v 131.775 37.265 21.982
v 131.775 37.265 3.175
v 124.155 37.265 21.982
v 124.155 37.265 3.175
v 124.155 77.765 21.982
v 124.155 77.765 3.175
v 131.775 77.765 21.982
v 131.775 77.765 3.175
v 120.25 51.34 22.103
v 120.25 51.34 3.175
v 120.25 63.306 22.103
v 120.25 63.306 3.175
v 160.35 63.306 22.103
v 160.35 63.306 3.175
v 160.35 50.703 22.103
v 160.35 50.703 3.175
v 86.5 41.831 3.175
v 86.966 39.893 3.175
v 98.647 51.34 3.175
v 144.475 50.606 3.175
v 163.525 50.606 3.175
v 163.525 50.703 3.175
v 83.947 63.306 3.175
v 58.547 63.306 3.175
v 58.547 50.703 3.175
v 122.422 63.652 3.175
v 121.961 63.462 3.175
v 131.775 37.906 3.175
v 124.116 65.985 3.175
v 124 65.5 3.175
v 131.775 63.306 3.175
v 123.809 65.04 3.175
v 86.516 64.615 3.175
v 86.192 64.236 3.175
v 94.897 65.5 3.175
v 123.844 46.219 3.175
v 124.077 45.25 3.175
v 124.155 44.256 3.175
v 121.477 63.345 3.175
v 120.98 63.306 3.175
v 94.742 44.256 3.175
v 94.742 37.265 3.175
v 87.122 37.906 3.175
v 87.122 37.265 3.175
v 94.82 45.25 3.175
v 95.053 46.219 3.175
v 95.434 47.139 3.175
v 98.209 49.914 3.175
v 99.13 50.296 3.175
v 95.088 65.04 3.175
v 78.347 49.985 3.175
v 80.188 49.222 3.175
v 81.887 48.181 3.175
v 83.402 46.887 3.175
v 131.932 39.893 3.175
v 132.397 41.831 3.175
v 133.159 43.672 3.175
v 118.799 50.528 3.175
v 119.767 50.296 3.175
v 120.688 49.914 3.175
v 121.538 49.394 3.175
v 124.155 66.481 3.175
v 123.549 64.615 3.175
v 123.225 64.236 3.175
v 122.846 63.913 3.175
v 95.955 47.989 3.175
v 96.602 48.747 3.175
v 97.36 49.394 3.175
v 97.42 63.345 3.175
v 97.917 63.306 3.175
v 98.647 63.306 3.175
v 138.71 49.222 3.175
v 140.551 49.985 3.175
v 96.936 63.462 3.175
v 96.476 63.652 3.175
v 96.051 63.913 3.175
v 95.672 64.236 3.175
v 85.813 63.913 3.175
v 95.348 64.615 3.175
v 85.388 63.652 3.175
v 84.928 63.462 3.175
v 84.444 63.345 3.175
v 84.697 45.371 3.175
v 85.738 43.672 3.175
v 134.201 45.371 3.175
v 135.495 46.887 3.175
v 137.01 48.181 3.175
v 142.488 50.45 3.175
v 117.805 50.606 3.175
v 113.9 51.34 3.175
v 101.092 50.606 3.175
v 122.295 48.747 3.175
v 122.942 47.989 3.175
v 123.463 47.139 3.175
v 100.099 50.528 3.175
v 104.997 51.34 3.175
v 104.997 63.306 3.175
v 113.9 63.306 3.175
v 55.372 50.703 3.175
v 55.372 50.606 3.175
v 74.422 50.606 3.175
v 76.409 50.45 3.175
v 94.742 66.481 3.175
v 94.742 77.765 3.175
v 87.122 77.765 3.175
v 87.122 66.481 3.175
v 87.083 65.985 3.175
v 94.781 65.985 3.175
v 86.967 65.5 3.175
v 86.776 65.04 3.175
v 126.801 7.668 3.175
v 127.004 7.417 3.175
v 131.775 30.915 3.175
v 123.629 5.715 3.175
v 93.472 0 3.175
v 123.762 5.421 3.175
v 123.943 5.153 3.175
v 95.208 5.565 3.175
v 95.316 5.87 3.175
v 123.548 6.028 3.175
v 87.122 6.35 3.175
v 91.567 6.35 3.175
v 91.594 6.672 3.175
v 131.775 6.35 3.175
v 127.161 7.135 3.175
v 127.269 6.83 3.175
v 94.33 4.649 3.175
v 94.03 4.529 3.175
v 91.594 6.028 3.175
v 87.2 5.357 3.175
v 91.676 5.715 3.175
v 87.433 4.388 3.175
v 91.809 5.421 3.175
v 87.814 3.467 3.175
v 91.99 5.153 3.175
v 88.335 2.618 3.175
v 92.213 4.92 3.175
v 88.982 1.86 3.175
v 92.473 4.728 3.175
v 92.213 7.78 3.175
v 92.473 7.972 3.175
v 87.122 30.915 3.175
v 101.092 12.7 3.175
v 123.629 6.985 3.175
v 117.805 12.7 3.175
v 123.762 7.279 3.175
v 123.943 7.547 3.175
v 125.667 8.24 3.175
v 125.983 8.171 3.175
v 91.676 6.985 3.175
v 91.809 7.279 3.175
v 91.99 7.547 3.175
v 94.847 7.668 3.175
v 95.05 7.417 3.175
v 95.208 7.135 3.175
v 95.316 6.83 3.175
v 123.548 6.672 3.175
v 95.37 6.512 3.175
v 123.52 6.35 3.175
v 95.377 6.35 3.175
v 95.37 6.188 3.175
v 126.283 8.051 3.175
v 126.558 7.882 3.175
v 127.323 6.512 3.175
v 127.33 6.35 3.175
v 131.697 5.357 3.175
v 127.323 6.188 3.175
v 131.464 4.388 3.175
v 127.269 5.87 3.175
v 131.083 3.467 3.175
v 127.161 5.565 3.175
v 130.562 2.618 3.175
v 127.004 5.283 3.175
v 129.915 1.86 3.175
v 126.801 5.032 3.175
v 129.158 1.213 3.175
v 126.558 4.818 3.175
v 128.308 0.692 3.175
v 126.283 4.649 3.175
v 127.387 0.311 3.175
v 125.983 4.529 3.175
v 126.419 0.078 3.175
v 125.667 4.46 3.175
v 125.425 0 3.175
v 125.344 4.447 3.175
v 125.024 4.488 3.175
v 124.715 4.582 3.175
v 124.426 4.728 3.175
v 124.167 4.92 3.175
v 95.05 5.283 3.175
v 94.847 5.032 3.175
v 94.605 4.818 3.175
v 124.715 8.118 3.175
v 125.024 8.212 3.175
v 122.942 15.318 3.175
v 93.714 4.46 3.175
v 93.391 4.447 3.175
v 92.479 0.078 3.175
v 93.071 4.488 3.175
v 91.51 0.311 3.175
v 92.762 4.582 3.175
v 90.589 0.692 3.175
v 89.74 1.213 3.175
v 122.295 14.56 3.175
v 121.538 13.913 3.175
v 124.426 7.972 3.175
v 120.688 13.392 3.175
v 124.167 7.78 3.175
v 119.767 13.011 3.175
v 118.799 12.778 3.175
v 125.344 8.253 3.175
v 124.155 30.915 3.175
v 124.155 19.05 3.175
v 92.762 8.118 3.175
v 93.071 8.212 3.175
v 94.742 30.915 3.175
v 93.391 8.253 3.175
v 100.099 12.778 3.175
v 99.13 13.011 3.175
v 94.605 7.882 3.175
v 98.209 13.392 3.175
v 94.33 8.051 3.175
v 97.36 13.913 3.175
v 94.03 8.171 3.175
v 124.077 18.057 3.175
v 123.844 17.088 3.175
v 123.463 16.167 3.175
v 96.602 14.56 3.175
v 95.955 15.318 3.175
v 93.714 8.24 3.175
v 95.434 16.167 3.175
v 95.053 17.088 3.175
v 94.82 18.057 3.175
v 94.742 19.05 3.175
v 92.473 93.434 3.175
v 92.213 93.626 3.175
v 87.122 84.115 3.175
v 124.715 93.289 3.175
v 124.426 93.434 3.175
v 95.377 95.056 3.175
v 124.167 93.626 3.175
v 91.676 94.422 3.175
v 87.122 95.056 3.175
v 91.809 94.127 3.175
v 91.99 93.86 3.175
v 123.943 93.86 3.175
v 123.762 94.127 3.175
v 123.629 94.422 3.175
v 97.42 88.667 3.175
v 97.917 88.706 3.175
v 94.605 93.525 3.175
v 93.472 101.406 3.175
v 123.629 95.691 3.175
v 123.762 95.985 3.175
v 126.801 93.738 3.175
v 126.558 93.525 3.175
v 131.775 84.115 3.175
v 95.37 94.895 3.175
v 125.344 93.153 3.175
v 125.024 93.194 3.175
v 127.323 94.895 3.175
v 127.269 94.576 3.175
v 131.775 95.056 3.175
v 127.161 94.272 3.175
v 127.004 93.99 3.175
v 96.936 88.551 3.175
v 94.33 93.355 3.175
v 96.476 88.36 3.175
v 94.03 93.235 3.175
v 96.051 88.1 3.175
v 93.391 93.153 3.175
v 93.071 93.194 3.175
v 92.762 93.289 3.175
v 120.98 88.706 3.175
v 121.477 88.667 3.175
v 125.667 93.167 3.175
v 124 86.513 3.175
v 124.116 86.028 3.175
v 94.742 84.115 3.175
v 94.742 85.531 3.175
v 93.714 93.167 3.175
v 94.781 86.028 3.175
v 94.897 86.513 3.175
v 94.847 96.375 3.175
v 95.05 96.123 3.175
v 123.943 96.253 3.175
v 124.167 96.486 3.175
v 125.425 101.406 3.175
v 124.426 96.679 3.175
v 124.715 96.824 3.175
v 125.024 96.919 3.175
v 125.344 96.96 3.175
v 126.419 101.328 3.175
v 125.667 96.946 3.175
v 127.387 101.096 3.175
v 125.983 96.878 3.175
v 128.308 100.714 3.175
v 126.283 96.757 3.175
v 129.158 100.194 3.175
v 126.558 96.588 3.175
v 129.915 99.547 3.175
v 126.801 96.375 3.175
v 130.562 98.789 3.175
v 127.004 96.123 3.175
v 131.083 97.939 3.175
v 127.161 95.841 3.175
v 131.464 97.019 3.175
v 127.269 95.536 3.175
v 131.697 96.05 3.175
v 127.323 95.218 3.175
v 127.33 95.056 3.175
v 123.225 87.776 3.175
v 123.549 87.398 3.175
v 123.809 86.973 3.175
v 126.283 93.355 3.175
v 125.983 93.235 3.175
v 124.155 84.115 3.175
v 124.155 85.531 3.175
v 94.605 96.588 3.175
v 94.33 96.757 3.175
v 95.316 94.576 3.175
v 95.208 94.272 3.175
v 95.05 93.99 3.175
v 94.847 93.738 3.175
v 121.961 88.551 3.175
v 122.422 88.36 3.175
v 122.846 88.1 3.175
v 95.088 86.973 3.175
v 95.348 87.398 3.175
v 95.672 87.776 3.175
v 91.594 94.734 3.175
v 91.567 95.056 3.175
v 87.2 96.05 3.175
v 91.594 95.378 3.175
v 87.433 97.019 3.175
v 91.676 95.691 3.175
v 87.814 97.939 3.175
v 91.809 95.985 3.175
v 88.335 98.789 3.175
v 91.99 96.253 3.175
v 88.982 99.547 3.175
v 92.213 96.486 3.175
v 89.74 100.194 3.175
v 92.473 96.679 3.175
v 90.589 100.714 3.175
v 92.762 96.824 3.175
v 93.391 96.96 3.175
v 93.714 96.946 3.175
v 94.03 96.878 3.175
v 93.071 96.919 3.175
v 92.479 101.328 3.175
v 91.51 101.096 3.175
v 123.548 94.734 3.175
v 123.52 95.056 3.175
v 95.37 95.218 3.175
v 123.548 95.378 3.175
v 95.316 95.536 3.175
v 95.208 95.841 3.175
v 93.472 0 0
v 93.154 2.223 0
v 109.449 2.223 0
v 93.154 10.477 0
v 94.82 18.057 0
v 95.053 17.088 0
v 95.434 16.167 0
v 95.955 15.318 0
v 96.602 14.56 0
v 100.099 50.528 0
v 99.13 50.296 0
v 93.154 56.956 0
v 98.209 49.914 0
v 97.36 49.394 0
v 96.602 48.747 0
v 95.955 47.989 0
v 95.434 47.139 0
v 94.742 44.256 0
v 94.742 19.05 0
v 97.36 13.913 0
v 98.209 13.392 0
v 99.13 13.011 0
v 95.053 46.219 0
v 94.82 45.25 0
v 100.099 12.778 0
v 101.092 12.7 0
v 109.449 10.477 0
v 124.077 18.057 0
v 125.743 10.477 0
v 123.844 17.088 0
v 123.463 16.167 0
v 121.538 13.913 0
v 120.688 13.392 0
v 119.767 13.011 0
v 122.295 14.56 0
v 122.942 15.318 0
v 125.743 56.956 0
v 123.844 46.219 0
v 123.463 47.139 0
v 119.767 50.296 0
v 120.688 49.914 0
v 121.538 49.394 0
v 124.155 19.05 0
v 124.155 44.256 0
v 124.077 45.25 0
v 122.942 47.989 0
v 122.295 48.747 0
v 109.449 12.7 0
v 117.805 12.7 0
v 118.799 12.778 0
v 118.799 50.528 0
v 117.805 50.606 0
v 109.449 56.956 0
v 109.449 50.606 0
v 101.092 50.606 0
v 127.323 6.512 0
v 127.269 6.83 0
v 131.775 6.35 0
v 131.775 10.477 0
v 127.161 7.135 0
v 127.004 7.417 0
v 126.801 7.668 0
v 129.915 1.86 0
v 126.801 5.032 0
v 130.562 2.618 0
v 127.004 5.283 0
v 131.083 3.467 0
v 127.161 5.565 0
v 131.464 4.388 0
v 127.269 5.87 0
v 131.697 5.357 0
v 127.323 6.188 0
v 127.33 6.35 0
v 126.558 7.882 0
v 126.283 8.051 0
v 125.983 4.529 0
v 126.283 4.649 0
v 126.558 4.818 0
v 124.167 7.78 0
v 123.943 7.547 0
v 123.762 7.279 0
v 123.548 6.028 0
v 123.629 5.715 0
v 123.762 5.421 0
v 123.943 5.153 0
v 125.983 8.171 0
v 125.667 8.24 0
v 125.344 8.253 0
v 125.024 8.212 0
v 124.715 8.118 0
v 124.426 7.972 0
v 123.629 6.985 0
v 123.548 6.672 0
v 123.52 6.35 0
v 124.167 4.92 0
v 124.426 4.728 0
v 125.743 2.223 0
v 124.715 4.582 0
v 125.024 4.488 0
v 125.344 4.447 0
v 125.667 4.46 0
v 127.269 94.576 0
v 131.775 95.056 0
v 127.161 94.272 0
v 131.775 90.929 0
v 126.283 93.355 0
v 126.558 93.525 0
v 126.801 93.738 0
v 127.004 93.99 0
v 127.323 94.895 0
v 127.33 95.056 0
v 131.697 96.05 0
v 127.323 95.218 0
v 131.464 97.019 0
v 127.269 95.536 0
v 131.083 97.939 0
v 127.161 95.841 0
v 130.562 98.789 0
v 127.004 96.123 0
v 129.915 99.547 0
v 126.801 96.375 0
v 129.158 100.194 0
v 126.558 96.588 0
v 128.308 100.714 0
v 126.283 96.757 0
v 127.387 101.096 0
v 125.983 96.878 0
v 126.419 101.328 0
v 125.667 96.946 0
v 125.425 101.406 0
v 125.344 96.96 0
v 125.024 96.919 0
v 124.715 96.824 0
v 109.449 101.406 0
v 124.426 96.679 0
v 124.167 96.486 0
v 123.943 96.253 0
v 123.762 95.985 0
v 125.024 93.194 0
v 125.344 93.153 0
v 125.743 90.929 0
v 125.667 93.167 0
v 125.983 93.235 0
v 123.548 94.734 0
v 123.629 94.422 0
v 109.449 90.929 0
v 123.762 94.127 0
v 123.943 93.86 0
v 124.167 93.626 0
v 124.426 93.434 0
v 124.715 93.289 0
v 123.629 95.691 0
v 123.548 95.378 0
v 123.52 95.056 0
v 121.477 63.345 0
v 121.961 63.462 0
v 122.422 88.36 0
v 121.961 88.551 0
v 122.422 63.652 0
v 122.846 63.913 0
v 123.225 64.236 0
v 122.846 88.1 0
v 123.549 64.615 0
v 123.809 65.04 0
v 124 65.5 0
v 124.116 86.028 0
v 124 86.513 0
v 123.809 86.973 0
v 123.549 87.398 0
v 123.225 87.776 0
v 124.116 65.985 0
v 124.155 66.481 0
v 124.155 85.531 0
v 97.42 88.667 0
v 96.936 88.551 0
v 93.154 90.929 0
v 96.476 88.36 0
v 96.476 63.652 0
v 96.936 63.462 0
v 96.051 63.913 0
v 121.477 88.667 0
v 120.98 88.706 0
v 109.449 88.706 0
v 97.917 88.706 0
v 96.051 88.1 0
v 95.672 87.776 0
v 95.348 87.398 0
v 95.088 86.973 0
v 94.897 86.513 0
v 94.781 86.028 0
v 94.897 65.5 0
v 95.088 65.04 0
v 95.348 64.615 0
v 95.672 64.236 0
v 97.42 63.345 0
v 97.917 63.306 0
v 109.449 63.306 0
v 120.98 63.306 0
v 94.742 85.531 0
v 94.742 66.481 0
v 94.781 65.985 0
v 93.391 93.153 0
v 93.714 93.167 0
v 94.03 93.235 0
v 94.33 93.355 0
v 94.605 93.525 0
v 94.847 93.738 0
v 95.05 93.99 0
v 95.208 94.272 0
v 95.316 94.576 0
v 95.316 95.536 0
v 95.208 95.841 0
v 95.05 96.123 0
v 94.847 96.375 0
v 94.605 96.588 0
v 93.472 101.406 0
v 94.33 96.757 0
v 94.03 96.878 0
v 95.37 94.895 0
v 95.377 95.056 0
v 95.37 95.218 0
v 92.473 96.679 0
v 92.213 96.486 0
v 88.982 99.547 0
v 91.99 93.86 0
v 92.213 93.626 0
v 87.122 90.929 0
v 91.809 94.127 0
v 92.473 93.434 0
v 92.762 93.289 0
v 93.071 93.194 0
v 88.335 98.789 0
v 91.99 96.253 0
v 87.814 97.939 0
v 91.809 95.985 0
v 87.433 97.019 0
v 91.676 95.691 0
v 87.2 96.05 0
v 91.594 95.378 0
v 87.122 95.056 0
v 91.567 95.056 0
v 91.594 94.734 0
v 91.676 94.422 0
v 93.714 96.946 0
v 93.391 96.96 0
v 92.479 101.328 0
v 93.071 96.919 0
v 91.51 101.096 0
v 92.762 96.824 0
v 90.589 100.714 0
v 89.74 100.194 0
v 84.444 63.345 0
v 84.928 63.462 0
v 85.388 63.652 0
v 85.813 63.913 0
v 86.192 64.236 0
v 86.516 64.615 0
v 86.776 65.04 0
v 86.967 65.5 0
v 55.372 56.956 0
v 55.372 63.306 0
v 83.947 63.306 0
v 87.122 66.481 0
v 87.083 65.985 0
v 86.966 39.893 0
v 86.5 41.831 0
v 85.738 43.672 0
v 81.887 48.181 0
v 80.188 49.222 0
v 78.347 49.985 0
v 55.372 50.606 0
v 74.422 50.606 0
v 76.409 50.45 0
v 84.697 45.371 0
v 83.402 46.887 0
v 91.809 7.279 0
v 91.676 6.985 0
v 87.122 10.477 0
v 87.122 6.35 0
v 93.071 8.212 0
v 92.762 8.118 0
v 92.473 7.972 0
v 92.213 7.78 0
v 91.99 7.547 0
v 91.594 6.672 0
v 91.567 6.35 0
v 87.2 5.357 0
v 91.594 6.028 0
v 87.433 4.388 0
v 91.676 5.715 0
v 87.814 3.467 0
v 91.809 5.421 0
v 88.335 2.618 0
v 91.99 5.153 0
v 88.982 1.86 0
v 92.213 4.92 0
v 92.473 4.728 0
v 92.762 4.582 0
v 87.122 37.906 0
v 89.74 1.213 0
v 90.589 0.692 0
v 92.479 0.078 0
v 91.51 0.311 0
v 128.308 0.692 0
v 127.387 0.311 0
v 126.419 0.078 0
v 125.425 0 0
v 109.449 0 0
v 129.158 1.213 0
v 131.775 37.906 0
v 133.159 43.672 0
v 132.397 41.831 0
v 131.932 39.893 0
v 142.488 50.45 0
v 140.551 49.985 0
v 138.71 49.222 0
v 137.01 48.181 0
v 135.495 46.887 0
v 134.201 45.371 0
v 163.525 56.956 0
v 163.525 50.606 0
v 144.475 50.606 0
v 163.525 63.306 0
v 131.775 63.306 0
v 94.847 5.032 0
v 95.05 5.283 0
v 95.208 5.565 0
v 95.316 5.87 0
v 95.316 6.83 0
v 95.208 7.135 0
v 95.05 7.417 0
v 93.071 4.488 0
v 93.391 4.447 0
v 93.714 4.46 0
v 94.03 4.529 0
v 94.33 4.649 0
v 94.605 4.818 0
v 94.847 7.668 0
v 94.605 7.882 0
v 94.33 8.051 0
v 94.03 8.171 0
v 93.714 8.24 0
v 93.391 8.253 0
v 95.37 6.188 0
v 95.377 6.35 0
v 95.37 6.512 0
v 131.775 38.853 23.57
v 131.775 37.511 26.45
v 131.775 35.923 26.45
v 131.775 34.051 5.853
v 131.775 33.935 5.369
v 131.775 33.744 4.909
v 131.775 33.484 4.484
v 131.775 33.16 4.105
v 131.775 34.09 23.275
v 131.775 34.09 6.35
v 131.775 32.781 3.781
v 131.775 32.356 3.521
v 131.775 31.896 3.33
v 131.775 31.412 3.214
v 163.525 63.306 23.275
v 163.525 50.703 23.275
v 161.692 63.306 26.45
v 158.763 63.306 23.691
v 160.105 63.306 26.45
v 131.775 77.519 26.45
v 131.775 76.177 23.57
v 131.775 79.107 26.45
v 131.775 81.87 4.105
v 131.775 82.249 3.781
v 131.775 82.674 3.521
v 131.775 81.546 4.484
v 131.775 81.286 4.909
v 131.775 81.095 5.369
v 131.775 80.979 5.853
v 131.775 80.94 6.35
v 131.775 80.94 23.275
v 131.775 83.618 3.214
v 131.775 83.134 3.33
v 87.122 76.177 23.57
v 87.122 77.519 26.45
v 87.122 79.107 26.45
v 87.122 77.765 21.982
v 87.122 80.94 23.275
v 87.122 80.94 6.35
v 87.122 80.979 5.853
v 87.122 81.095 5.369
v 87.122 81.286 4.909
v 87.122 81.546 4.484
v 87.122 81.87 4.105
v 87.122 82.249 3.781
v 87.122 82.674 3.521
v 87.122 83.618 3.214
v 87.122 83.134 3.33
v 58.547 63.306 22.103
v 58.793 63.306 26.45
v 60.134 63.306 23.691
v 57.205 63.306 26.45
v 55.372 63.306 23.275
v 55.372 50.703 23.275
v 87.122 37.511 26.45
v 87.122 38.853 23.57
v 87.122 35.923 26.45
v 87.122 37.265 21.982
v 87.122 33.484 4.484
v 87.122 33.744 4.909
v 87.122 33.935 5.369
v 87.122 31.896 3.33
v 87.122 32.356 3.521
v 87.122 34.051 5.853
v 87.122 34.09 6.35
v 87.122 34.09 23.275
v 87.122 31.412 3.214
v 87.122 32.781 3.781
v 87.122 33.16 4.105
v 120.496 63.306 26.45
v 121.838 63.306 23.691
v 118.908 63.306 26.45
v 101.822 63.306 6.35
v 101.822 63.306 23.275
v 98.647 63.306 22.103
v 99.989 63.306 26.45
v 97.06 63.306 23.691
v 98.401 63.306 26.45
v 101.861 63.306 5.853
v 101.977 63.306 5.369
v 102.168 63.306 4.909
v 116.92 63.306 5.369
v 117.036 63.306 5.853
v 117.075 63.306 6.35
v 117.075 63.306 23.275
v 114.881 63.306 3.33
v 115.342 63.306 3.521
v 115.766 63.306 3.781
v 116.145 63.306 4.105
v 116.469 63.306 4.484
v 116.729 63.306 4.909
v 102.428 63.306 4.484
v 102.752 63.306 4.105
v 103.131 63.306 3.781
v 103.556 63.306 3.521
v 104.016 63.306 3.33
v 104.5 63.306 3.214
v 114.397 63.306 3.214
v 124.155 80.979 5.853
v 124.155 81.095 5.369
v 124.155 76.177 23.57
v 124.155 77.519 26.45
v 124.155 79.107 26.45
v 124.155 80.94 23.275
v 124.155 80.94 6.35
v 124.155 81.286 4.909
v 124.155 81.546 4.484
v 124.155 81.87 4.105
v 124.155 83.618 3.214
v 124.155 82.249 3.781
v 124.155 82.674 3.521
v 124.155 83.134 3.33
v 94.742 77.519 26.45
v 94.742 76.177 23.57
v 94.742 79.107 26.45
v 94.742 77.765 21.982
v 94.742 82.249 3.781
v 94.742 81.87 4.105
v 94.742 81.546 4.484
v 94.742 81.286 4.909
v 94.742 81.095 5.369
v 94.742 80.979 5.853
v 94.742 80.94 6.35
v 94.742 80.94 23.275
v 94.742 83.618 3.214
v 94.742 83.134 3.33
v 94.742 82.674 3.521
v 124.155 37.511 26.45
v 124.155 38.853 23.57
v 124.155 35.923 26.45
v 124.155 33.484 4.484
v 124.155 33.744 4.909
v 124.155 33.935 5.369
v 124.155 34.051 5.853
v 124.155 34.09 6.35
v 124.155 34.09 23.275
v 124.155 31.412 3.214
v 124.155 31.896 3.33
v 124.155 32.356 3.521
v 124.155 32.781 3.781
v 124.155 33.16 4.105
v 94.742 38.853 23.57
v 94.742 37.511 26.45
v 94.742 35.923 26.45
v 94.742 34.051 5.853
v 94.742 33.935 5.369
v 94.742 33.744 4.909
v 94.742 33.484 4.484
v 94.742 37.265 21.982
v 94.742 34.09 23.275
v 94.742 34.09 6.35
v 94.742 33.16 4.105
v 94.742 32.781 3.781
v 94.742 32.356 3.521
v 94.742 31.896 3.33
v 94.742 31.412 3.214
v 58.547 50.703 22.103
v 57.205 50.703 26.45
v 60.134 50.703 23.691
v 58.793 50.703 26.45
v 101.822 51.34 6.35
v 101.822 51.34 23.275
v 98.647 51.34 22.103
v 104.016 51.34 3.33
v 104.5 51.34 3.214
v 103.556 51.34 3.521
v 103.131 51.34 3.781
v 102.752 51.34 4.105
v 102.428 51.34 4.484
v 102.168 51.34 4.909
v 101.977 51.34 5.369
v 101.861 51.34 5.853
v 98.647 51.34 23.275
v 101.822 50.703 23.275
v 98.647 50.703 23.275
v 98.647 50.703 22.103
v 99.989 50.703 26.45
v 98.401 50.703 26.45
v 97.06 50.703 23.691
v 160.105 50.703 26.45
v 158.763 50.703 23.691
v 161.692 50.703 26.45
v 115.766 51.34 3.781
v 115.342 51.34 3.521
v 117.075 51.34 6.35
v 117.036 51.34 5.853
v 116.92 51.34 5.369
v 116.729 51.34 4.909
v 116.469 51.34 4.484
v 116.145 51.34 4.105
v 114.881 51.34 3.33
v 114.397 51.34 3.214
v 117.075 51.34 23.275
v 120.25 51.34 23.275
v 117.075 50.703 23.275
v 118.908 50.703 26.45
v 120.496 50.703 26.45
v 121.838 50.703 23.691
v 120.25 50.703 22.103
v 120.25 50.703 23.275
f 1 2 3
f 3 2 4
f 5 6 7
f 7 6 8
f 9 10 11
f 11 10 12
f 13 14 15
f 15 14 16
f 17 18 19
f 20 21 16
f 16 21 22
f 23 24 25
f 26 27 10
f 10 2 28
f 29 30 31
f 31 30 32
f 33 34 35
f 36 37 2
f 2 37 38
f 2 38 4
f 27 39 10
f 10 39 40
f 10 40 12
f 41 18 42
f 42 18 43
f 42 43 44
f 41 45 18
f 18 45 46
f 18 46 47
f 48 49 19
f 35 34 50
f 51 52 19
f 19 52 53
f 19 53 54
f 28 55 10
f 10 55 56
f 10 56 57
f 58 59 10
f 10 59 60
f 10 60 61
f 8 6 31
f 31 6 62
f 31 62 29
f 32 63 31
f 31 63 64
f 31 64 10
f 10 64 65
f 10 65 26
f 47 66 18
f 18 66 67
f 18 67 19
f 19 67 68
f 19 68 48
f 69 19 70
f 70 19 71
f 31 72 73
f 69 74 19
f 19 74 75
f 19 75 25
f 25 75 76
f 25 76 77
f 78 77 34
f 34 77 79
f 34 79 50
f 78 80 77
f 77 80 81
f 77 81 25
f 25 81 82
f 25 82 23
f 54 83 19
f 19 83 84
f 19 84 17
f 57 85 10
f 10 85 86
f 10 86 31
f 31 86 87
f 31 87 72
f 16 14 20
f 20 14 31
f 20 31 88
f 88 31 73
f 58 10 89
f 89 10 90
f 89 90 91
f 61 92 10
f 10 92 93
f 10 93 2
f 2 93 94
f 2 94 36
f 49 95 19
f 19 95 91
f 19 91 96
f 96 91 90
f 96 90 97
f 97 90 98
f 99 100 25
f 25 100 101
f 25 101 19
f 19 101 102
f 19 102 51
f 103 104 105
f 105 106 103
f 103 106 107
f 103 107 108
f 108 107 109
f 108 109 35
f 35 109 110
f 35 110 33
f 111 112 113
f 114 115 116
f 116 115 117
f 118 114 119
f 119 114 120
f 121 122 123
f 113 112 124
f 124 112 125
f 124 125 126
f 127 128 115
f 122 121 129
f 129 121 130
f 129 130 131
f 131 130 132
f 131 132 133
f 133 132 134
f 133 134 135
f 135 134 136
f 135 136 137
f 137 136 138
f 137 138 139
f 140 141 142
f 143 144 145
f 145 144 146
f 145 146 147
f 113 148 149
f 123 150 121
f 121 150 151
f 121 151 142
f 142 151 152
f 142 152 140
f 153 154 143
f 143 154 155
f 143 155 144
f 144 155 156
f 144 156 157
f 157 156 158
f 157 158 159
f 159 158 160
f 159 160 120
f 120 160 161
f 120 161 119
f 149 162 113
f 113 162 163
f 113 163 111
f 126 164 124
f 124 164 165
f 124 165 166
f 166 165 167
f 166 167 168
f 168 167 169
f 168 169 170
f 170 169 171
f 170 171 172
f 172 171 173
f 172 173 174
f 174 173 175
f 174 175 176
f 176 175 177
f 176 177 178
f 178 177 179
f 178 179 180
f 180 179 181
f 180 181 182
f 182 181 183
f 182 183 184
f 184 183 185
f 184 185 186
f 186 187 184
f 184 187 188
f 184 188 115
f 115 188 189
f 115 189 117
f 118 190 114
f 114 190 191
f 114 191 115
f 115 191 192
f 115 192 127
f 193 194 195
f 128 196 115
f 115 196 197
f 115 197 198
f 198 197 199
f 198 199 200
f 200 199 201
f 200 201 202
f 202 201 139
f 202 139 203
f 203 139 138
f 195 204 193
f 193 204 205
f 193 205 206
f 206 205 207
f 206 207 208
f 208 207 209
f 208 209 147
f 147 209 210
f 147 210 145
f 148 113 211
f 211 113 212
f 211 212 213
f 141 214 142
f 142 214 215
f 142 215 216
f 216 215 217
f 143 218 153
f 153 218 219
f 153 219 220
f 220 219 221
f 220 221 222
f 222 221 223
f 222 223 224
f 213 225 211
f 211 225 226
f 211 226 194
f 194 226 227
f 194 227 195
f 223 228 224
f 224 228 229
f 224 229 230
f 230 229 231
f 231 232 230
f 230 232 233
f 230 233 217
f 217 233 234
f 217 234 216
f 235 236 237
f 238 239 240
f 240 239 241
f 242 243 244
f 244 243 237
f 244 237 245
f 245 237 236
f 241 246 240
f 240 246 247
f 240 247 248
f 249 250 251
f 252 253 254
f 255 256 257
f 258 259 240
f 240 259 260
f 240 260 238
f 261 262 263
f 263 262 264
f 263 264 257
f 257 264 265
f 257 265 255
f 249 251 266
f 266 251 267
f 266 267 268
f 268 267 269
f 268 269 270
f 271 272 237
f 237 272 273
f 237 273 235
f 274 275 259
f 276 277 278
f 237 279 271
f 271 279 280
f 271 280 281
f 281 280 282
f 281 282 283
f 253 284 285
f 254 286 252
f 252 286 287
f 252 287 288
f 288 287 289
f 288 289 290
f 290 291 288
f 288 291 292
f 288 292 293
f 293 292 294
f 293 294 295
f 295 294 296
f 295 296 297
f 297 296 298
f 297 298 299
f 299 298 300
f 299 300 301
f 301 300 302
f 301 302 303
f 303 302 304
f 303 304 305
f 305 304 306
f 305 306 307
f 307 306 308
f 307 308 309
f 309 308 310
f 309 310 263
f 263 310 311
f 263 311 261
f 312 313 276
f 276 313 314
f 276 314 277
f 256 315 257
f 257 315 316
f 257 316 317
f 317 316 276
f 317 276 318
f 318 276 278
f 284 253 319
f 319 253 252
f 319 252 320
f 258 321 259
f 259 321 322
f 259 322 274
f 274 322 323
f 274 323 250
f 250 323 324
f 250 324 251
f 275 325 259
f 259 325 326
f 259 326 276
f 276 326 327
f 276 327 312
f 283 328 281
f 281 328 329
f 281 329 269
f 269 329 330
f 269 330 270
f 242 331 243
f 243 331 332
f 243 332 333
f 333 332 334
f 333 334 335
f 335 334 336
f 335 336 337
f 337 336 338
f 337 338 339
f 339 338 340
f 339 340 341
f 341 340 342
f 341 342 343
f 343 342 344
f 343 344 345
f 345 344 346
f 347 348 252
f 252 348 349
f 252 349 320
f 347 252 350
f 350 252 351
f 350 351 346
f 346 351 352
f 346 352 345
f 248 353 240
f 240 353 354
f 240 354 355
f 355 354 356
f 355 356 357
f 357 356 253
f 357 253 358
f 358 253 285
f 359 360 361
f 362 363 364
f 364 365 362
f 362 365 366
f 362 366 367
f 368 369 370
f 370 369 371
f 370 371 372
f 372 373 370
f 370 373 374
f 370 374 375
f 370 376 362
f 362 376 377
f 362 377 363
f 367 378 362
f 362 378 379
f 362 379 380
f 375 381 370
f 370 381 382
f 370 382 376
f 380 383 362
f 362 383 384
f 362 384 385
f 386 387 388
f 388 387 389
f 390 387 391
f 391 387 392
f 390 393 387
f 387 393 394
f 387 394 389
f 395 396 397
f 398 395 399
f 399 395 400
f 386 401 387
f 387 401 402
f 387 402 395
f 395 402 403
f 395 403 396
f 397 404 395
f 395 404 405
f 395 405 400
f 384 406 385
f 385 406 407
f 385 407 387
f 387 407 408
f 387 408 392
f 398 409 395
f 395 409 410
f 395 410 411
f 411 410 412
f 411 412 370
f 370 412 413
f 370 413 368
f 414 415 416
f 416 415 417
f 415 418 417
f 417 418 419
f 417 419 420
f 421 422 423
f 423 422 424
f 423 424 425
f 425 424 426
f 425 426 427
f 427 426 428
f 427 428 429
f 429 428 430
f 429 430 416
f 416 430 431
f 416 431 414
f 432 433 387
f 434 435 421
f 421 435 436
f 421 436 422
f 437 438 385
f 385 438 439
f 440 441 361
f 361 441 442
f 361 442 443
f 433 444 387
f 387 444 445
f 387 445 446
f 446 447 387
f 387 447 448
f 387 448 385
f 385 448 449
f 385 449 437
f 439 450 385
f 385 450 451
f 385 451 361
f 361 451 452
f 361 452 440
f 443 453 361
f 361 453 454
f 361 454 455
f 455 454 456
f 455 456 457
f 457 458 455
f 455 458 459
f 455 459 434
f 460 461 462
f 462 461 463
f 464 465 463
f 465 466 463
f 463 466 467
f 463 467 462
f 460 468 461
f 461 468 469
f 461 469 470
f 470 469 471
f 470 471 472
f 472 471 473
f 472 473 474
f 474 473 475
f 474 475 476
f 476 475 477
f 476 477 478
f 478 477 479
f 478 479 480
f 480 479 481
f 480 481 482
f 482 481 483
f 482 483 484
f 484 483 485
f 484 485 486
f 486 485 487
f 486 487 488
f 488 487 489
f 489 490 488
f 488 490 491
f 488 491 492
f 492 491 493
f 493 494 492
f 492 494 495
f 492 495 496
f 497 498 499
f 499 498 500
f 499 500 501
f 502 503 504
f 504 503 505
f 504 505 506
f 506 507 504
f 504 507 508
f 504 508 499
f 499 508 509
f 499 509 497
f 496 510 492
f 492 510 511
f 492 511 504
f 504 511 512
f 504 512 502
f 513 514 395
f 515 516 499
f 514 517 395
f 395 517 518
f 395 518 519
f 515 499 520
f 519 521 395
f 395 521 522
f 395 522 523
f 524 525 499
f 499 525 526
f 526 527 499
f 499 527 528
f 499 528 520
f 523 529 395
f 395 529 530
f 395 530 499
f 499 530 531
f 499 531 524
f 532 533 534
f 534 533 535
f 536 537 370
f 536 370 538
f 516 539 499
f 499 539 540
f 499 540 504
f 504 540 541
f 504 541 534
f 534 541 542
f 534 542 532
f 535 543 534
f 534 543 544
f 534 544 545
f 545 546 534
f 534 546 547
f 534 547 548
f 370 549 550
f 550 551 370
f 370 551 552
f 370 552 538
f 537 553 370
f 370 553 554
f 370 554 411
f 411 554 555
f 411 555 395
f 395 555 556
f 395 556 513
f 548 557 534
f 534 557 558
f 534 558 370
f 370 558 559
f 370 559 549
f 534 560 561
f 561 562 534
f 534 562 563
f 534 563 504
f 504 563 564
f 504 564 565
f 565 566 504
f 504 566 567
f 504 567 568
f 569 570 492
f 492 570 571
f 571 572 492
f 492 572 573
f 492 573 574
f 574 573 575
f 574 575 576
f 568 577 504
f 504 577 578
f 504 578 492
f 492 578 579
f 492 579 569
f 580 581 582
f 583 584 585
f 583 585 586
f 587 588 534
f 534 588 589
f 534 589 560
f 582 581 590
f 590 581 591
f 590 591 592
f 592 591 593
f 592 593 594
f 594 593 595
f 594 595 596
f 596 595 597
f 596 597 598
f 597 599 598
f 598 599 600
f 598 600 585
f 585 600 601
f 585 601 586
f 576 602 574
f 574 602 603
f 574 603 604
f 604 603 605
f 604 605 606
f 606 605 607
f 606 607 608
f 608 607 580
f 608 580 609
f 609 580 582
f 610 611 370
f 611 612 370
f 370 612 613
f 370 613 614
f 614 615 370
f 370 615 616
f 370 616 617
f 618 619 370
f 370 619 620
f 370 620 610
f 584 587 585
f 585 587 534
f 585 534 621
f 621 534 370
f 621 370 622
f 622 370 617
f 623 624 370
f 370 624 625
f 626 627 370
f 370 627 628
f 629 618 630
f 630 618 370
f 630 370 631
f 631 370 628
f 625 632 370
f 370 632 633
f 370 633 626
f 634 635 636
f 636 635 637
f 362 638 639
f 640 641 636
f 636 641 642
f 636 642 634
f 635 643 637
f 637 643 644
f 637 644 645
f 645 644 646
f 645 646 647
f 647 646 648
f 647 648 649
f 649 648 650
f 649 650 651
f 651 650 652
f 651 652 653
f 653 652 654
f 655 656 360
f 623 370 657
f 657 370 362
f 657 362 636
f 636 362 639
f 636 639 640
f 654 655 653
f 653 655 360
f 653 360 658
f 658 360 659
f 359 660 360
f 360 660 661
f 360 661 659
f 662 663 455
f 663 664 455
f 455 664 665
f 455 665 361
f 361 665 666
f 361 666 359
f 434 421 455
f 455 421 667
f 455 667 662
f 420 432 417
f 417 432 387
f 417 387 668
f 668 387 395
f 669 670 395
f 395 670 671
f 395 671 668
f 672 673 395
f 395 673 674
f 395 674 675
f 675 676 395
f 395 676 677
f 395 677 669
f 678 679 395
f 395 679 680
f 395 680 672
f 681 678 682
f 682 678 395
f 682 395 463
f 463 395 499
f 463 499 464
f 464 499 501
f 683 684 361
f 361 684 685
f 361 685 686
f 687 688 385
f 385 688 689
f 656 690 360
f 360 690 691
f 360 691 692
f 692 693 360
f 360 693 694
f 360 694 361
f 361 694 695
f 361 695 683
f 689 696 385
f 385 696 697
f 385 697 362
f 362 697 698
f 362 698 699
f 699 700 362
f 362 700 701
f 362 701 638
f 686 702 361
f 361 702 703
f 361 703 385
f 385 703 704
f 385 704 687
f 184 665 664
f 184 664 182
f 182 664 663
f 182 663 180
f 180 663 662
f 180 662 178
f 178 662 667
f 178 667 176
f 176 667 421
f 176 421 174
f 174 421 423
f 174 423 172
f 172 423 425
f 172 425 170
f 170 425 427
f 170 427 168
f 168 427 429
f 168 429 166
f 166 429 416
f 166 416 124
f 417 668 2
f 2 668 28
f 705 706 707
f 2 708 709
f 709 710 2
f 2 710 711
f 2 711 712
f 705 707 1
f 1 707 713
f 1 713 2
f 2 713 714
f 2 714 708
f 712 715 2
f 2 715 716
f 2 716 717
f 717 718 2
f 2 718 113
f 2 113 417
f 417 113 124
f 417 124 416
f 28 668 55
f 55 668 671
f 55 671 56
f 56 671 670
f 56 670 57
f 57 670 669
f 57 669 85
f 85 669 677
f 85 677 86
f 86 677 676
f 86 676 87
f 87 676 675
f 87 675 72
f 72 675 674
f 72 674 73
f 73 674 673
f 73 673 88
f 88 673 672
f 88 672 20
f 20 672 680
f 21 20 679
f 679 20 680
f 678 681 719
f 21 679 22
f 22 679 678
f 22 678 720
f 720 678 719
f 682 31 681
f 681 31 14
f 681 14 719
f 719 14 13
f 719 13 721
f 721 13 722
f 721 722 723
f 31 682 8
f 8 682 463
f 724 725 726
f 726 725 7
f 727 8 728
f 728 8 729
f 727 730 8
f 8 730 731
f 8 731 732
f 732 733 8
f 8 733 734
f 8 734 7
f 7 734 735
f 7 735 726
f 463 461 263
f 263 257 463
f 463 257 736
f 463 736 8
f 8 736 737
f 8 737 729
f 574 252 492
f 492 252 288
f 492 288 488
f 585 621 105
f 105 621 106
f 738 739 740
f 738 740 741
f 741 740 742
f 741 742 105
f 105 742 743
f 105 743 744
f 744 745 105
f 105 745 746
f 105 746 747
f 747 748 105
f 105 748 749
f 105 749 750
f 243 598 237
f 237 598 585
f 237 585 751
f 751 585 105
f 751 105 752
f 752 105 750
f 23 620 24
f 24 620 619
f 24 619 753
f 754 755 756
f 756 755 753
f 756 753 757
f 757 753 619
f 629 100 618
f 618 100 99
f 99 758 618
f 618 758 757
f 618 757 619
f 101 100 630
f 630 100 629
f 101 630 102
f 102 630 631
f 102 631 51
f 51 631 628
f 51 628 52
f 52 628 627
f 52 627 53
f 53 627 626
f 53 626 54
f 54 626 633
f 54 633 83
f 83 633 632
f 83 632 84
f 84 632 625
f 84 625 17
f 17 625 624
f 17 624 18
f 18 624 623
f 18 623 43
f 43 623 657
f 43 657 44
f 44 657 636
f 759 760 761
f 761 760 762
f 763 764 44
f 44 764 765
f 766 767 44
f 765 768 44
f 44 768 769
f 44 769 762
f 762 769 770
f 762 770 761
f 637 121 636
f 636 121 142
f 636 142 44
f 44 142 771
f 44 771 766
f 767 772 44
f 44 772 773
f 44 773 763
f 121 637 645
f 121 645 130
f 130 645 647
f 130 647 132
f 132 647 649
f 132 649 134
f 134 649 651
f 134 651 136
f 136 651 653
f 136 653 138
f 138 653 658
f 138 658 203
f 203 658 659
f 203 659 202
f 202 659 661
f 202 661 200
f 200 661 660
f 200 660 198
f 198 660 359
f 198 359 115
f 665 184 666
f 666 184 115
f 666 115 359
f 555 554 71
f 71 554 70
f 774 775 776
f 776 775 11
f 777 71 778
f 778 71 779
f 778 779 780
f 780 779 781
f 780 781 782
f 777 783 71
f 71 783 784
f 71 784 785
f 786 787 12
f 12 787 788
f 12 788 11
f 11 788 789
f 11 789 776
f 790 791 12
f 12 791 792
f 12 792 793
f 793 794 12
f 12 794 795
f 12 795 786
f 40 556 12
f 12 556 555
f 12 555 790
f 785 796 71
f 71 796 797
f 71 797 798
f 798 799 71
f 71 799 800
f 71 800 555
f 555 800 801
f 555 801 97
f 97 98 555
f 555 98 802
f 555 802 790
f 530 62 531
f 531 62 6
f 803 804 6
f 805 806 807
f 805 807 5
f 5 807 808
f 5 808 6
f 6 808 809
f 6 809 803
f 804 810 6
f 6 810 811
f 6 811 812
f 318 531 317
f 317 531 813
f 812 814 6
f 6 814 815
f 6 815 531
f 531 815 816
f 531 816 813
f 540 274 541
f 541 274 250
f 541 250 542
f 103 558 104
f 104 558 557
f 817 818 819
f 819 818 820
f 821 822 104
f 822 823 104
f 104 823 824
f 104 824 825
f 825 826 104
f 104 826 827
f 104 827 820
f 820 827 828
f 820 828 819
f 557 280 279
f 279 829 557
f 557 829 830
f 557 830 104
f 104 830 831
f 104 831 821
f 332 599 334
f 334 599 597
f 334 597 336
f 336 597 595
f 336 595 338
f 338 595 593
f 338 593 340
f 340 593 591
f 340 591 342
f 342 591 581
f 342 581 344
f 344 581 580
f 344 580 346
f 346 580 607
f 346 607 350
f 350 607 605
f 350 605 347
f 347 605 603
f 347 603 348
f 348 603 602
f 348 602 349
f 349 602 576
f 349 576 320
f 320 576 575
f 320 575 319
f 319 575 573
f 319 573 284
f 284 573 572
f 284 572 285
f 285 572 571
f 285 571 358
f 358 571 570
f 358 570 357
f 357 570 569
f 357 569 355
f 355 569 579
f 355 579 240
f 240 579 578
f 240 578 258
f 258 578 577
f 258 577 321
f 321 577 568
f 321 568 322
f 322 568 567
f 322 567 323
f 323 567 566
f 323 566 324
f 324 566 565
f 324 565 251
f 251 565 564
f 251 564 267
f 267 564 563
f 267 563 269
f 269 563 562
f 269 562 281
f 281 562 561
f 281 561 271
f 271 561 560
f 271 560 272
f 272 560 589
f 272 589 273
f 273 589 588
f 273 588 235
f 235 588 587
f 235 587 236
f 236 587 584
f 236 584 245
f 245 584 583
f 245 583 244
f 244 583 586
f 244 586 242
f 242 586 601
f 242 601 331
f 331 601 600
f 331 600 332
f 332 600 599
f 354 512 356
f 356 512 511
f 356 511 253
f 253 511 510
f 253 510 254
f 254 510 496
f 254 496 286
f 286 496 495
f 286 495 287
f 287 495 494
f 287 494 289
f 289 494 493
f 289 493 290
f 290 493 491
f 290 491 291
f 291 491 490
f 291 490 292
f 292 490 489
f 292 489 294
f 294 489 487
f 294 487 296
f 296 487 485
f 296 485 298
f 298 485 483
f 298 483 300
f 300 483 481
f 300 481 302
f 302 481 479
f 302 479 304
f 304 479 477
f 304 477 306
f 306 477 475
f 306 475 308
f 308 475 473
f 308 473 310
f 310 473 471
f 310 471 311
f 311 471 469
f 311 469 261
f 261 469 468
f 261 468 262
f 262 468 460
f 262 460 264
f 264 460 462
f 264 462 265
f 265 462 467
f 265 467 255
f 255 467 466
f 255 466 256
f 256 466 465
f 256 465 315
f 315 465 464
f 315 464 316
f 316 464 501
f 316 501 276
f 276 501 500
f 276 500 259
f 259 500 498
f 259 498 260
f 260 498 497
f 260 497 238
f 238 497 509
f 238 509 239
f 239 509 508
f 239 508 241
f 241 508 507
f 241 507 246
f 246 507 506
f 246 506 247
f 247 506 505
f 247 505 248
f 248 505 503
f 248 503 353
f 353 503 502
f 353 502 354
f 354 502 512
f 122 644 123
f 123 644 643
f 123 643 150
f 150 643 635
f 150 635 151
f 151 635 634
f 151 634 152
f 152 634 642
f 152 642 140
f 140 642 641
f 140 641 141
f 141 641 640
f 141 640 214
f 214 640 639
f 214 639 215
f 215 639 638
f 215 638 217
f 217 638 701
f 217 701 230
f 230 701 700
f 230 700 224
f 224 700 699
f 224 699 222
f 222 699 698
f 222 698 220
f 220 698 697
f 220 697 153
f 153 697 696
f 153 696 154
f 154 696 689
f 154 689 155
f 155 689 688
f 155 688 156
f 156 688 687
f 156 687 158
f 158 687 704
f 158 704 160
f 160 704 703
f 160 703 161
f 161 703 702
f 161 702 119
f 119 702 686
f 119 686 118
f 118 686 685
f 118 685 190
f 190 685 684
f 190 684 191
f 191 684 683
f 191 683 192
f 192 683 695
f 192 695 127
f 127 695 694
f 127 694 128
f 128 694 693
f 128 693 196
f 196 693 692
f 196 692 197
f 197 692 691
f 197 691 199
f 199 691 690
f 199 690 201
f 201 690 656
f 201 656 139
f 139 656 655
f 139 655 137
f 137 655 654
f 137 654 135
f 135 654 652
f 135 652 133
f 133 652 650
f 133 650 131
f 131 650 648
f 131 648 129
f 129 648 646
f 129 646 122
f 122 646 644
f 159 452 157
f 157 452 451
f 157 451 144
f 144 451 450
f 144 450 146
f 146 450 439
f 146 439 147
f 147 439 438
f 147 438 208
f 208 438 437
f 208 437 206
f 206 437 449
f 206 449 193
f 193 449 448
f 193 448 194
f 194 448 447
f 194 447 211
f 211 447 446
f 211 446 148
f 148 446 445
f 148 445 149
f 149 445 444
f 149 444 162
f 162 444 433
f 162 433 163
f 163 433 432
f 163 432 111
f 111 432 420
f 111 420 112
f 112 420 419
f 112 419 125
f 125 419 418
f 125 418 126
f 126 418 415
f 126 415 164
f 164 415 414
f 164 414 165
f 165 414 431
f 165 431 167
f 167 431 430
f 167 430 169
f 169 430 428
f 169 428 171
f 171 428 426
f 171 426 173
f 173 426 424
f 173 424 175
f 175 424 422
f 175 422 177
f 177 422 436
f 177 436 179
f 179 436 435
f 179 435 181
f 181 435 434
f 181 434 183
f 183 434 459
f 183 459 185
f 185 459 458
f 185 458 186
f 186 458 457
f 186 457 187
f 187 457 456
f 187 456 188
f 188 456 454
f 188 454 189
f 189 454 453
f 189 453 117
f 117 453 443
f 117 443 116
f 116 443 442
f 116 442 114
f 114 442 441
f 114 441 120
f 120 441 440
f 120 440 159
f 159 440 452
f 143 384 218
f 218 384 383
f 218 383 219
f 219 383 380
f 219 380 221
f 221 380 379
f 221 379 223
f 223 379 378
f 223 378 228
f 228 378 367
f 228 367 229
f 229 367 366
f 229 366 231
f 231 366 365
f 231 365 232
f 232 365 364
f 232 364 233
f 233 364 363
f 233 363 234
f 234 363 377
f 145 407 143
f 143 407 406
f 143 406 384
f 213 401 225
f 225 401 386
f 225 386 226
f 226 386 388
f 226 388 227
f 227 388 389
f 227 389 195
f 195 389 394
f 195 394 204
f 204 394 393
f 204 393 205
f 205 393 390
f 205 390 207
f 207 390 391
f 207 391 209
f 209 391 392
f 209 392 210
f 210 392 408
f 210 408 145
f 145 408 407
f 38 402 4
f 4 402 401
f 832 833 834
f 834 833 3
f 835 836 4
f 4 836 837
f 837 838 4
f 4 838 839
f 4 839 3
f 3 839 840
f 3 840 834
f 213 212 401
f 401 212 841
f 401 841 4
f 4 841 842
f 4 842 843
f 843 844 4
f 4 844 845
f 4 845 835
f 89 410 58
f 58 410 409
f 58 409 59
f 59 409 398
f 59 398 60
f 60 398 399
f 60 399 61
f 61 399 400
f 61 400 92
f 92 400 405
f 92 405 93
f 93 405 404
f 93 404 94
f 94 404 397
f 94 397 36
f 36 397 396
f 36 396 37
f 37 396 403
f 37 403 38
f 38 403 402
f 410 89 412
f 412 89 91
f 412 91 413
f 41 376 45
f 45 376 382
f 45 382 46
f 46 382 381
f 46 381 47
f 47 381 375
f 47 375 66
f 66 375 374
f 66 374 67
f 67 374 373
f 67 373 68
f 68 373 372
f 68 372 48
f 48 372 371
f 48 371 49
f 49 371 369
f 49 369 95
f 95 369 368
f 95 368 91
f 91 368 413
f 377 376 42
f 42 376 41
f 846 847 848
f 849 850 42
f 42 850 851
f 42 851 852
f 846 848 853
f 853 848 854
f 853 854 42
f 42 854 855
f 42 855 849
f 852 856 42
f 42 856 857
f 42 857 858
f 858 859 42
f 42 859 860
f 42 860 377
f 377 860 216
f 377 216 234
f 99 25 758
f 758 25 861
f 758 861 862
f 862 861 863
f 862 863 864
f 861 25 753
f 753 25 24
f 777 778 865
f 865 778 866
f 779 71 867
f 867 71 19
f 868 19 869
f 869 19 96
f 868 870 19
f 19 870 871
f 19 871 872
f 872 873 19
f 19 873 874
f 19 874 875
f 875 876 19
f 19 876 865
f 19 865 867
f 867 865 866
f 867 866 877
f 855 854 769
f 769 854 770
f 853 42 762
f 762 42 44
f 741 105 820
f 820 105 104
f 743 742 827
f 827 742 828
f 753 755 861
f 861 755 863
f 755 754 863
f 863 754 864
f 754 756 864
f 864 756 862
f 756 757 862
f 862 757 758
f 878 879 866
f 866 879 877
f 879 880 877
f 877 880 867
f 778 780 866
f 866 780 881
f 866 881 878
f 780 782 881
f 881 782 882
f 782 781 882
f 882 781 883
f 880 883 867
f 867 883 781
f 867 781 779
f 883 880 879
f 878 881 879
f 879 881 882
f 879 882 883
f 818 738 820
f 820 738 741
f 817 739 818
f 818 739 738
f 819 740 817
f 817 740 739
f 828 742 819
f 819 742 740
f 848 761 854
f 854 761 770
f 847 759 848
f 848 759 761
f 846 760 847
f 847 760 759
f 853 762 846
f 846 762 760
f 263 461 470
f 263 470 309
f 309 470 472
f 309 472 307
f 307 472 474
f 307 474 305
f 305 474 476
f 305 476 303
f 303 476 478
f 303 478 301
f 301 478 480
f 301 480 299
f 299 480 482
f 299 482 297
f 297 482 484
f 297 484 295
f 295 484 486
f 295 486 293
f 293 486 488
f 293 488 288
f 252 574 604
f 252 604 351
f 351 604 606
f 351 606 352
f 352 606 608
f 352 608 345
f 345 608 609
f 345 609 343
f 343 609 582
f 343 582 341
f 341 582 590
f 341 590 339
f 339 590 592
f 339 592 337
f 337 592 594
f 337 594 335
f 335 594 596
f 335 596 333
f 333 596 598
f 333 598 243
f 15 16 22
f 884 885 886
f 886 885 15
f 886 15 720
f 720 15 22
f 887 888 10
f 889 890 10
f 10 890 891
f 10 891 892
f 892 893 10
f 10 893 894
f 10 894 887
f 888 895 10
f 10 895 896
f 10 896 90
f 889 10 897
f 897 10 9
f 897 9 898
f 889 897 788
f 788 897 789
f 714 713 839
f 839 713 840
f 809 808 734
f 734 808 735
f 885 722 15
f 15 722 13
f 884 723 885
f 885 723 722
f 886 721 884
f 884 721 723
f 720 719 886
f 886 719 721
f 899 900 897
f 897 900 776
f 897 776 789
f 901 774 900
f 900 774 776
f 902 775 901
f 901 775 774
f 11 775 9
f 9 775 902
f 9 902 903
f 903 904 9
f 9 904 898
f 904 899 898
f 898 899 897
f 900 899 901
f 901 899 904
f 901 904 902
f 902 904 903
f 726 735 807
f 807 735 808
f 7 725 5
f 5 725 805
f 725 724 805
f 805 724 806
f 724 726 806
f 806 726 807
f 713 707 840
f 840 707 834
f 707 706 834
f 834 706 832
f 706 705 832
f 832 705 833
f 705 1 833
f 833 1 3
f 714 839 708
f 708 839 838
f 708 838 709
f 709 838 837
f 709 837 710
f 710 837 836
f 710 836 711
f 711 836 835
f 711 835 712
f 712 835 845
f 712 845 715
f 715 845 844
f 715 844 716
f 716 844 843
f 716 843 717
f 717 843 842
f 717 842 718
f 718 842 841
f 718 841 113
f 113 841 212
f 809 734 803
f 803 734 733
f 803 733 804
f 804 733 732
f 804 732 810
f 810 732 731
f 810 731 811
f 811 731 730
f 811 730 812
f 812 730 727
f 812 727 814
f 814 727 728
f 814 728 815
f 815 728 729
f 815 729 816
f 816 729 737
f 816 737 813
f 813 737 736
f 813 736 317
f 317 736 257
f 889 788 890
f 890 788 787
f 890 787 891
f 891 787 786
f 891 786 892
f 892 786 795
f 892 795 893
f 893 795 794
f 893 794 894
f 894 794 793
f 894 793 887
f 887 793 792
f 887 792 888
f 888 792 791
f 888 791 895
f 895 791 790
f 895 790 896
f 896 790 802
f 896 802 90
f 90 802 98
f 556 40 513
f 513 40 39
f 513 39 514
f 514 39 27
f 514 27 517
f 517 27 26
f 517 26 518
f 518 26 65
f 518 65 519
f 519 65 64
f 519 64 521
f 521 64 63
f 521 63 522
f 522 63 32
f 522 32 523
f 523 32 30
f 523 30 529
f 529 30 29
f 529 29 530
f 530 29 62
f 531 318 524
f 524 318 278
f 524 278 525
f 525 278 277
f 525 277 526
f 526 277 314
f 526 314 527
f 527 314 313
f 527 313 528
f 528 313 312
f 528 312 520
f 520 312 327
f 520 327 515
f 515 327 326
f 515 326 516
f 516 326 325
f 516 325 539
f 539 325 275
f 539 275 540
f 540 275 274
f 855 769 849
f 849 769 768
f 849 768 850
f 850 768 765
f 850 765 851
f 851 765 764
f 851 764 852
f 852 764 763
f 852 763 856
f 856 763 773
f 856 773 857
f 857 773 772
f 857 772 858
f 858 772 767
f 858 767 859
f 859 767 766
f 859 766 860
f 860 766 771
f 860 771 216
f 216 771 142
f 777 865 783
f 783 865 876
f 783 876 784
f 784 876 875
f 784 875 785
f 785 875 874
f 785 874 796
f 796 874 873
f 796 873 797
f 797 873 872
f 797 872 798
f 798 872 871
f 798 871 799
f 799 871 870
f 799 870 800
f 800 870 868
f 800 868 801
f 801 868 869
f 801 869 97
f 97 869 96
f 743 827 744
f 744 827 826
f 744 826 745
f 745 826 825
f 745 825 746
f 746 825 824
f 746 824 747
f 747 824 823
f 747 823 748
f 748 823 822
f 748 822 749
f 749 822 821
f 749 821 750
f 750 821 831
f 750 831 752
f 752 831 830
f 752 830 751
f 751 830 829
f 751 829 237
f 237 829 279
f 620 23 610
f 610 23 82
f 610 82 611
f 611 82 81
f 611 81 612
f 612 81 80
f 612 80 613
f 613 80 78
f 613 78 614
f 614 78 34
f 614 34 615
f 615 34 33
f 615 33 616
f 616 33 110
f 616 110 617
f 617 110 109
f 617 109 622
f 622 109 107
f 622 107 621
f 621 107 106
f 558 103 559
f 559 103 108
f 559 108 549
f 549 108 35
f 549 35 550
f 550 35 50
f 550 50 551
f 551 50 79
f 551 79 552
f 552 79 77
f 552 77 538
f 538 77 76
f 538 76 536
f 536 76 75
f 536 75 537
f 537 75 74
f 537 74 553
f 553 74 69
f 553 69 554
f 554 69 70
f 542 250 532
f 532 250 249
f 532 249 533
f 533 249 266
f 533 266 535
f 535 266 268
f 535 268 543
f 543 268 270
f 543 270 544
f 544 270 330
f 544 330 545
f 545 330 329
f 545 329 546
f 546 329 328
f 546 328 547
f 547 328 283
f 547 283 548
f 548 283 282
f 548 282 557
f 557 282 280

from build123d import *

# Parameters (mm, degrees)
SKETCH1_R           = 1.905
SKETCH1_W           = 29.4132
SKETCH1_H           = 25.4
BOSS_EXTRUDE1_DEPTH = 3.175
SKETCH2_W           = 3.175
SKETCH2_H           = 12.603189316
SKETCH2_H_2         = 11.966378631
SKETCH2_W_2         = 7.62
SKETCH2_H_3         = 3.175
BOSS_EXTRUDE2_DEPTH = 20.1
BOSS_EXTRUDE3_DEPTH = 12.603189
BOSS_EXTRUDE4_DEPTH = 7.62
FILLET1_R           = 6.35
FILLET2_R           = 3.175


with BuildPart() as part:
    # Sketch1 → Boss-Extrude1 (new body)
    with BuildSketch(Plane.XY):
        with BuildLine():
            Line((87.122, 101.406378631), (99.822, 101.406378631))
            Line((99.822, 101.406378631), (119.0752, 101.406378631))
            Line((119.0752, 101.406378631), (131.7752, 101.406378631))
            Line((131.7752, 101.406378631), (131.7752, 63.306378631))
            Line((131.7752, 63.306378631), (163.5252, 63.306378631))
            Line((163.5252, 63.306378631), (163.5252, 50.606378631))
            Line((163.5252, 50.606378631), (144.4752, 50.606378631))
            ThreePointArc((144.4752, 50.606378631), (135.494943879, 46.886634752), (131.7752, 37.906378631))
            Line((131.7752, 37.906378631), (131.7752, 6.35))
            ThreePointArc((131.7752, 6.35), (129.915328061, 1.859871939), (125.4252, 0))
            Line((125.4252, 0), (109.4486, 0))
            Line((109.4486, 0), (93.472, 0))
            ThreePointArc((93.472, 0), (88.981871939, 1.859871939), (87.122, 6.35))
            Line((87.122, 6.35), (87.122, 37.906378631))
            ThreePointArc((87.122, 37.906378631), (83.402256121, 46.886634752), (74.422, 50.606378631))
            Line((74.422, 50.606378631), (55.372, 50.606378631))
            Line((55.372, 50.606378631), (55.372, 63.306378631))
            Line((55.372, 63.306378631), (87.122, 63.306378631))
            Line((87.122, 63.306378631), (87.122, 101.406378631))
        make_face()
        with Locations((93.472, 95.056378631)):
            Circle(SKETCH1_R, mode=Mode.SUBTRACT)
        with Locations((125.4252, 95.056378631)):
            Circle(SKETCH1_R, mode=Mode.SUBTRACT)
        with Locations((93.472, 6.35)):
            Circle(SKETCH1_R, mode=Mode.SUBTRACT)
        with Locations((125.4252, 6.35)):
            Circle(SKETCH1_R, mode=Mode.SUBTRACT)
        with Locations((109.4486, 76.006378631)):
            Rectangle(SKETCH1_W, SKETCH1_H, mode=Mode.SUBTRACT)
        with BuildLine():
            Line((101.092, 50.606378631), (117.8052, 50.606378631))
            ThreePointArc((117.8052, 50.606378631), (122.295328061, 48.746506691), (124.1552, 44.256378631))
            Line((124.1552, 44.256378631), (124.1552, 19.05))
            ThreePointArc((124.1552, 19.05), (122.295328061, 14.559871939), (117.8052, 12.7))
            Line((117.8052, 12.7), (101.092, 12.7))
            ThreePointArc((101.092, 12.7), (96.601871939, 14.559871939), (94.742, 19.05))
            Line((94.742, 19.05), (94.742, 44.256378631))
            ThreePointArc((94.742, 44.256378631), (96.601871939, 48.746506691), (101.092, 50.606378631))
        make_face(mode=Mode.SUBTRACT)
    extrude(amount=BOSS_EXTRUDE1_DEPTH)

    # Sketch2 → Boss-Extrude2 (add)
    with BuildSketch(Plane.XY.offset(3.175)):
        with Locations((56.9595, 57.004783973)):
            Rectangle(SKETCH2_W, SKETCH2_H)
        with Locations((100.2345, 57.323189316)):
            Rectangle(SKETCH2_W, SKETCH2_H_2)
        with Locations((90.932, 35.6775)):
            Rectangle(SKETCH2_W_2, SKETCH2_H_3)
        with Locations((90.932, 79.3525)):
            Rectangle(SKETCH2_W_2, SKETCH2_H_3)
    boss_extrude2 = extrude(amount=BOSS_EXTRUDE2_DEPTH)

    # Sketch3 → Boss-Extrude3 (add)
    with BuildSketch(Plane(origin=(0, 63.306378631, 0), x_dir=(1, 0, 0), z_dir=(0, 1, 0))):
        Polygon((58.547, -22.103427125), (60.1345, -23.690927125), (58.792587105, -26.45), (57.205087105, -26.45), (55.372, -23.275), (58.547, -23.275), align=None)
        Polygon((98.647, -22.103427125), (97.0595, -23.690927125), (98.401412895, -26.45), (99.988912895, -26.45), (101.822, -23.275), (98.647, -23.275), align=None)
    boss_extrude3 = extrude(amount=-BOSS_EXTRUDE3_DEPTH)

    # Sketch4 → Boss-Extrude4 (add)
    with BuildSketch(Plane.ZY.offset(-87.122)):
        Polygon((23.275, 80.94), (23.275, 77.765), (21.982106781, 77.765), (23.569606781, 76.1775), (26.45, 77.519412895), (26.45, 79.106912895), align=None)
        Polygon((26.45, 35.923087105), (23.275, 34.09), (23.275, 37.265), (21.982106781, 37.265), (23.569606781, 38.8525), (26.45, 37.510587105), align=None)
    boss_extrude4 = extrude(amount=-BOSS_EXTRUDE4_DEPTH)

    # Fillet1
    fillet1_edges = [part.edges().sort_by_distance(p)[0] for p in [
        (87.122, 101.406378631, 1.5875),
        (131.7752, 101.406378631, 1.5875),
    ]]
    fillet(fillet1_edges, radius=FILLET1_R)

    # Mirror3: Boss-Extrude2, Boss-Extrude3, Boss-Extrude4 across plane
    add(boss_extrude2.mirror(Plane.ZY.offset(-109.4486)))
    add(boss_extrude3.mirror(Plane.ZY.offset(-109.4486)))
    add(boss_extrude4.mirror(Plane.ZY.offset(-109.4486)))

    # Fillet2
    fillet2_edges = [part.edges().sort_by_distance(p)[0] for p in [
        (101.822, 57.323189315, 3.175),
        (90.932, 34.09, 3.175),
        (90.932, 80.94, 3.175),
        (117.0752, 57.323189315, 3.175),
        (127.9652, 34.09, 3.175),
        (127.9652, 80.94, 3.175),
        (87.122, 63.306378631, 1.5875),
        (94.742, 63.306378631, 1.5875),
        (124.1552, 63.306378631, 1.5875),
        (124.1552, 88.706378631, 1.5875),
        (94.742, 88.706378631, 1.5875),
    ]]
    fillet(fillet2_edges, radius=FILLET2_R)


solid = part.part
